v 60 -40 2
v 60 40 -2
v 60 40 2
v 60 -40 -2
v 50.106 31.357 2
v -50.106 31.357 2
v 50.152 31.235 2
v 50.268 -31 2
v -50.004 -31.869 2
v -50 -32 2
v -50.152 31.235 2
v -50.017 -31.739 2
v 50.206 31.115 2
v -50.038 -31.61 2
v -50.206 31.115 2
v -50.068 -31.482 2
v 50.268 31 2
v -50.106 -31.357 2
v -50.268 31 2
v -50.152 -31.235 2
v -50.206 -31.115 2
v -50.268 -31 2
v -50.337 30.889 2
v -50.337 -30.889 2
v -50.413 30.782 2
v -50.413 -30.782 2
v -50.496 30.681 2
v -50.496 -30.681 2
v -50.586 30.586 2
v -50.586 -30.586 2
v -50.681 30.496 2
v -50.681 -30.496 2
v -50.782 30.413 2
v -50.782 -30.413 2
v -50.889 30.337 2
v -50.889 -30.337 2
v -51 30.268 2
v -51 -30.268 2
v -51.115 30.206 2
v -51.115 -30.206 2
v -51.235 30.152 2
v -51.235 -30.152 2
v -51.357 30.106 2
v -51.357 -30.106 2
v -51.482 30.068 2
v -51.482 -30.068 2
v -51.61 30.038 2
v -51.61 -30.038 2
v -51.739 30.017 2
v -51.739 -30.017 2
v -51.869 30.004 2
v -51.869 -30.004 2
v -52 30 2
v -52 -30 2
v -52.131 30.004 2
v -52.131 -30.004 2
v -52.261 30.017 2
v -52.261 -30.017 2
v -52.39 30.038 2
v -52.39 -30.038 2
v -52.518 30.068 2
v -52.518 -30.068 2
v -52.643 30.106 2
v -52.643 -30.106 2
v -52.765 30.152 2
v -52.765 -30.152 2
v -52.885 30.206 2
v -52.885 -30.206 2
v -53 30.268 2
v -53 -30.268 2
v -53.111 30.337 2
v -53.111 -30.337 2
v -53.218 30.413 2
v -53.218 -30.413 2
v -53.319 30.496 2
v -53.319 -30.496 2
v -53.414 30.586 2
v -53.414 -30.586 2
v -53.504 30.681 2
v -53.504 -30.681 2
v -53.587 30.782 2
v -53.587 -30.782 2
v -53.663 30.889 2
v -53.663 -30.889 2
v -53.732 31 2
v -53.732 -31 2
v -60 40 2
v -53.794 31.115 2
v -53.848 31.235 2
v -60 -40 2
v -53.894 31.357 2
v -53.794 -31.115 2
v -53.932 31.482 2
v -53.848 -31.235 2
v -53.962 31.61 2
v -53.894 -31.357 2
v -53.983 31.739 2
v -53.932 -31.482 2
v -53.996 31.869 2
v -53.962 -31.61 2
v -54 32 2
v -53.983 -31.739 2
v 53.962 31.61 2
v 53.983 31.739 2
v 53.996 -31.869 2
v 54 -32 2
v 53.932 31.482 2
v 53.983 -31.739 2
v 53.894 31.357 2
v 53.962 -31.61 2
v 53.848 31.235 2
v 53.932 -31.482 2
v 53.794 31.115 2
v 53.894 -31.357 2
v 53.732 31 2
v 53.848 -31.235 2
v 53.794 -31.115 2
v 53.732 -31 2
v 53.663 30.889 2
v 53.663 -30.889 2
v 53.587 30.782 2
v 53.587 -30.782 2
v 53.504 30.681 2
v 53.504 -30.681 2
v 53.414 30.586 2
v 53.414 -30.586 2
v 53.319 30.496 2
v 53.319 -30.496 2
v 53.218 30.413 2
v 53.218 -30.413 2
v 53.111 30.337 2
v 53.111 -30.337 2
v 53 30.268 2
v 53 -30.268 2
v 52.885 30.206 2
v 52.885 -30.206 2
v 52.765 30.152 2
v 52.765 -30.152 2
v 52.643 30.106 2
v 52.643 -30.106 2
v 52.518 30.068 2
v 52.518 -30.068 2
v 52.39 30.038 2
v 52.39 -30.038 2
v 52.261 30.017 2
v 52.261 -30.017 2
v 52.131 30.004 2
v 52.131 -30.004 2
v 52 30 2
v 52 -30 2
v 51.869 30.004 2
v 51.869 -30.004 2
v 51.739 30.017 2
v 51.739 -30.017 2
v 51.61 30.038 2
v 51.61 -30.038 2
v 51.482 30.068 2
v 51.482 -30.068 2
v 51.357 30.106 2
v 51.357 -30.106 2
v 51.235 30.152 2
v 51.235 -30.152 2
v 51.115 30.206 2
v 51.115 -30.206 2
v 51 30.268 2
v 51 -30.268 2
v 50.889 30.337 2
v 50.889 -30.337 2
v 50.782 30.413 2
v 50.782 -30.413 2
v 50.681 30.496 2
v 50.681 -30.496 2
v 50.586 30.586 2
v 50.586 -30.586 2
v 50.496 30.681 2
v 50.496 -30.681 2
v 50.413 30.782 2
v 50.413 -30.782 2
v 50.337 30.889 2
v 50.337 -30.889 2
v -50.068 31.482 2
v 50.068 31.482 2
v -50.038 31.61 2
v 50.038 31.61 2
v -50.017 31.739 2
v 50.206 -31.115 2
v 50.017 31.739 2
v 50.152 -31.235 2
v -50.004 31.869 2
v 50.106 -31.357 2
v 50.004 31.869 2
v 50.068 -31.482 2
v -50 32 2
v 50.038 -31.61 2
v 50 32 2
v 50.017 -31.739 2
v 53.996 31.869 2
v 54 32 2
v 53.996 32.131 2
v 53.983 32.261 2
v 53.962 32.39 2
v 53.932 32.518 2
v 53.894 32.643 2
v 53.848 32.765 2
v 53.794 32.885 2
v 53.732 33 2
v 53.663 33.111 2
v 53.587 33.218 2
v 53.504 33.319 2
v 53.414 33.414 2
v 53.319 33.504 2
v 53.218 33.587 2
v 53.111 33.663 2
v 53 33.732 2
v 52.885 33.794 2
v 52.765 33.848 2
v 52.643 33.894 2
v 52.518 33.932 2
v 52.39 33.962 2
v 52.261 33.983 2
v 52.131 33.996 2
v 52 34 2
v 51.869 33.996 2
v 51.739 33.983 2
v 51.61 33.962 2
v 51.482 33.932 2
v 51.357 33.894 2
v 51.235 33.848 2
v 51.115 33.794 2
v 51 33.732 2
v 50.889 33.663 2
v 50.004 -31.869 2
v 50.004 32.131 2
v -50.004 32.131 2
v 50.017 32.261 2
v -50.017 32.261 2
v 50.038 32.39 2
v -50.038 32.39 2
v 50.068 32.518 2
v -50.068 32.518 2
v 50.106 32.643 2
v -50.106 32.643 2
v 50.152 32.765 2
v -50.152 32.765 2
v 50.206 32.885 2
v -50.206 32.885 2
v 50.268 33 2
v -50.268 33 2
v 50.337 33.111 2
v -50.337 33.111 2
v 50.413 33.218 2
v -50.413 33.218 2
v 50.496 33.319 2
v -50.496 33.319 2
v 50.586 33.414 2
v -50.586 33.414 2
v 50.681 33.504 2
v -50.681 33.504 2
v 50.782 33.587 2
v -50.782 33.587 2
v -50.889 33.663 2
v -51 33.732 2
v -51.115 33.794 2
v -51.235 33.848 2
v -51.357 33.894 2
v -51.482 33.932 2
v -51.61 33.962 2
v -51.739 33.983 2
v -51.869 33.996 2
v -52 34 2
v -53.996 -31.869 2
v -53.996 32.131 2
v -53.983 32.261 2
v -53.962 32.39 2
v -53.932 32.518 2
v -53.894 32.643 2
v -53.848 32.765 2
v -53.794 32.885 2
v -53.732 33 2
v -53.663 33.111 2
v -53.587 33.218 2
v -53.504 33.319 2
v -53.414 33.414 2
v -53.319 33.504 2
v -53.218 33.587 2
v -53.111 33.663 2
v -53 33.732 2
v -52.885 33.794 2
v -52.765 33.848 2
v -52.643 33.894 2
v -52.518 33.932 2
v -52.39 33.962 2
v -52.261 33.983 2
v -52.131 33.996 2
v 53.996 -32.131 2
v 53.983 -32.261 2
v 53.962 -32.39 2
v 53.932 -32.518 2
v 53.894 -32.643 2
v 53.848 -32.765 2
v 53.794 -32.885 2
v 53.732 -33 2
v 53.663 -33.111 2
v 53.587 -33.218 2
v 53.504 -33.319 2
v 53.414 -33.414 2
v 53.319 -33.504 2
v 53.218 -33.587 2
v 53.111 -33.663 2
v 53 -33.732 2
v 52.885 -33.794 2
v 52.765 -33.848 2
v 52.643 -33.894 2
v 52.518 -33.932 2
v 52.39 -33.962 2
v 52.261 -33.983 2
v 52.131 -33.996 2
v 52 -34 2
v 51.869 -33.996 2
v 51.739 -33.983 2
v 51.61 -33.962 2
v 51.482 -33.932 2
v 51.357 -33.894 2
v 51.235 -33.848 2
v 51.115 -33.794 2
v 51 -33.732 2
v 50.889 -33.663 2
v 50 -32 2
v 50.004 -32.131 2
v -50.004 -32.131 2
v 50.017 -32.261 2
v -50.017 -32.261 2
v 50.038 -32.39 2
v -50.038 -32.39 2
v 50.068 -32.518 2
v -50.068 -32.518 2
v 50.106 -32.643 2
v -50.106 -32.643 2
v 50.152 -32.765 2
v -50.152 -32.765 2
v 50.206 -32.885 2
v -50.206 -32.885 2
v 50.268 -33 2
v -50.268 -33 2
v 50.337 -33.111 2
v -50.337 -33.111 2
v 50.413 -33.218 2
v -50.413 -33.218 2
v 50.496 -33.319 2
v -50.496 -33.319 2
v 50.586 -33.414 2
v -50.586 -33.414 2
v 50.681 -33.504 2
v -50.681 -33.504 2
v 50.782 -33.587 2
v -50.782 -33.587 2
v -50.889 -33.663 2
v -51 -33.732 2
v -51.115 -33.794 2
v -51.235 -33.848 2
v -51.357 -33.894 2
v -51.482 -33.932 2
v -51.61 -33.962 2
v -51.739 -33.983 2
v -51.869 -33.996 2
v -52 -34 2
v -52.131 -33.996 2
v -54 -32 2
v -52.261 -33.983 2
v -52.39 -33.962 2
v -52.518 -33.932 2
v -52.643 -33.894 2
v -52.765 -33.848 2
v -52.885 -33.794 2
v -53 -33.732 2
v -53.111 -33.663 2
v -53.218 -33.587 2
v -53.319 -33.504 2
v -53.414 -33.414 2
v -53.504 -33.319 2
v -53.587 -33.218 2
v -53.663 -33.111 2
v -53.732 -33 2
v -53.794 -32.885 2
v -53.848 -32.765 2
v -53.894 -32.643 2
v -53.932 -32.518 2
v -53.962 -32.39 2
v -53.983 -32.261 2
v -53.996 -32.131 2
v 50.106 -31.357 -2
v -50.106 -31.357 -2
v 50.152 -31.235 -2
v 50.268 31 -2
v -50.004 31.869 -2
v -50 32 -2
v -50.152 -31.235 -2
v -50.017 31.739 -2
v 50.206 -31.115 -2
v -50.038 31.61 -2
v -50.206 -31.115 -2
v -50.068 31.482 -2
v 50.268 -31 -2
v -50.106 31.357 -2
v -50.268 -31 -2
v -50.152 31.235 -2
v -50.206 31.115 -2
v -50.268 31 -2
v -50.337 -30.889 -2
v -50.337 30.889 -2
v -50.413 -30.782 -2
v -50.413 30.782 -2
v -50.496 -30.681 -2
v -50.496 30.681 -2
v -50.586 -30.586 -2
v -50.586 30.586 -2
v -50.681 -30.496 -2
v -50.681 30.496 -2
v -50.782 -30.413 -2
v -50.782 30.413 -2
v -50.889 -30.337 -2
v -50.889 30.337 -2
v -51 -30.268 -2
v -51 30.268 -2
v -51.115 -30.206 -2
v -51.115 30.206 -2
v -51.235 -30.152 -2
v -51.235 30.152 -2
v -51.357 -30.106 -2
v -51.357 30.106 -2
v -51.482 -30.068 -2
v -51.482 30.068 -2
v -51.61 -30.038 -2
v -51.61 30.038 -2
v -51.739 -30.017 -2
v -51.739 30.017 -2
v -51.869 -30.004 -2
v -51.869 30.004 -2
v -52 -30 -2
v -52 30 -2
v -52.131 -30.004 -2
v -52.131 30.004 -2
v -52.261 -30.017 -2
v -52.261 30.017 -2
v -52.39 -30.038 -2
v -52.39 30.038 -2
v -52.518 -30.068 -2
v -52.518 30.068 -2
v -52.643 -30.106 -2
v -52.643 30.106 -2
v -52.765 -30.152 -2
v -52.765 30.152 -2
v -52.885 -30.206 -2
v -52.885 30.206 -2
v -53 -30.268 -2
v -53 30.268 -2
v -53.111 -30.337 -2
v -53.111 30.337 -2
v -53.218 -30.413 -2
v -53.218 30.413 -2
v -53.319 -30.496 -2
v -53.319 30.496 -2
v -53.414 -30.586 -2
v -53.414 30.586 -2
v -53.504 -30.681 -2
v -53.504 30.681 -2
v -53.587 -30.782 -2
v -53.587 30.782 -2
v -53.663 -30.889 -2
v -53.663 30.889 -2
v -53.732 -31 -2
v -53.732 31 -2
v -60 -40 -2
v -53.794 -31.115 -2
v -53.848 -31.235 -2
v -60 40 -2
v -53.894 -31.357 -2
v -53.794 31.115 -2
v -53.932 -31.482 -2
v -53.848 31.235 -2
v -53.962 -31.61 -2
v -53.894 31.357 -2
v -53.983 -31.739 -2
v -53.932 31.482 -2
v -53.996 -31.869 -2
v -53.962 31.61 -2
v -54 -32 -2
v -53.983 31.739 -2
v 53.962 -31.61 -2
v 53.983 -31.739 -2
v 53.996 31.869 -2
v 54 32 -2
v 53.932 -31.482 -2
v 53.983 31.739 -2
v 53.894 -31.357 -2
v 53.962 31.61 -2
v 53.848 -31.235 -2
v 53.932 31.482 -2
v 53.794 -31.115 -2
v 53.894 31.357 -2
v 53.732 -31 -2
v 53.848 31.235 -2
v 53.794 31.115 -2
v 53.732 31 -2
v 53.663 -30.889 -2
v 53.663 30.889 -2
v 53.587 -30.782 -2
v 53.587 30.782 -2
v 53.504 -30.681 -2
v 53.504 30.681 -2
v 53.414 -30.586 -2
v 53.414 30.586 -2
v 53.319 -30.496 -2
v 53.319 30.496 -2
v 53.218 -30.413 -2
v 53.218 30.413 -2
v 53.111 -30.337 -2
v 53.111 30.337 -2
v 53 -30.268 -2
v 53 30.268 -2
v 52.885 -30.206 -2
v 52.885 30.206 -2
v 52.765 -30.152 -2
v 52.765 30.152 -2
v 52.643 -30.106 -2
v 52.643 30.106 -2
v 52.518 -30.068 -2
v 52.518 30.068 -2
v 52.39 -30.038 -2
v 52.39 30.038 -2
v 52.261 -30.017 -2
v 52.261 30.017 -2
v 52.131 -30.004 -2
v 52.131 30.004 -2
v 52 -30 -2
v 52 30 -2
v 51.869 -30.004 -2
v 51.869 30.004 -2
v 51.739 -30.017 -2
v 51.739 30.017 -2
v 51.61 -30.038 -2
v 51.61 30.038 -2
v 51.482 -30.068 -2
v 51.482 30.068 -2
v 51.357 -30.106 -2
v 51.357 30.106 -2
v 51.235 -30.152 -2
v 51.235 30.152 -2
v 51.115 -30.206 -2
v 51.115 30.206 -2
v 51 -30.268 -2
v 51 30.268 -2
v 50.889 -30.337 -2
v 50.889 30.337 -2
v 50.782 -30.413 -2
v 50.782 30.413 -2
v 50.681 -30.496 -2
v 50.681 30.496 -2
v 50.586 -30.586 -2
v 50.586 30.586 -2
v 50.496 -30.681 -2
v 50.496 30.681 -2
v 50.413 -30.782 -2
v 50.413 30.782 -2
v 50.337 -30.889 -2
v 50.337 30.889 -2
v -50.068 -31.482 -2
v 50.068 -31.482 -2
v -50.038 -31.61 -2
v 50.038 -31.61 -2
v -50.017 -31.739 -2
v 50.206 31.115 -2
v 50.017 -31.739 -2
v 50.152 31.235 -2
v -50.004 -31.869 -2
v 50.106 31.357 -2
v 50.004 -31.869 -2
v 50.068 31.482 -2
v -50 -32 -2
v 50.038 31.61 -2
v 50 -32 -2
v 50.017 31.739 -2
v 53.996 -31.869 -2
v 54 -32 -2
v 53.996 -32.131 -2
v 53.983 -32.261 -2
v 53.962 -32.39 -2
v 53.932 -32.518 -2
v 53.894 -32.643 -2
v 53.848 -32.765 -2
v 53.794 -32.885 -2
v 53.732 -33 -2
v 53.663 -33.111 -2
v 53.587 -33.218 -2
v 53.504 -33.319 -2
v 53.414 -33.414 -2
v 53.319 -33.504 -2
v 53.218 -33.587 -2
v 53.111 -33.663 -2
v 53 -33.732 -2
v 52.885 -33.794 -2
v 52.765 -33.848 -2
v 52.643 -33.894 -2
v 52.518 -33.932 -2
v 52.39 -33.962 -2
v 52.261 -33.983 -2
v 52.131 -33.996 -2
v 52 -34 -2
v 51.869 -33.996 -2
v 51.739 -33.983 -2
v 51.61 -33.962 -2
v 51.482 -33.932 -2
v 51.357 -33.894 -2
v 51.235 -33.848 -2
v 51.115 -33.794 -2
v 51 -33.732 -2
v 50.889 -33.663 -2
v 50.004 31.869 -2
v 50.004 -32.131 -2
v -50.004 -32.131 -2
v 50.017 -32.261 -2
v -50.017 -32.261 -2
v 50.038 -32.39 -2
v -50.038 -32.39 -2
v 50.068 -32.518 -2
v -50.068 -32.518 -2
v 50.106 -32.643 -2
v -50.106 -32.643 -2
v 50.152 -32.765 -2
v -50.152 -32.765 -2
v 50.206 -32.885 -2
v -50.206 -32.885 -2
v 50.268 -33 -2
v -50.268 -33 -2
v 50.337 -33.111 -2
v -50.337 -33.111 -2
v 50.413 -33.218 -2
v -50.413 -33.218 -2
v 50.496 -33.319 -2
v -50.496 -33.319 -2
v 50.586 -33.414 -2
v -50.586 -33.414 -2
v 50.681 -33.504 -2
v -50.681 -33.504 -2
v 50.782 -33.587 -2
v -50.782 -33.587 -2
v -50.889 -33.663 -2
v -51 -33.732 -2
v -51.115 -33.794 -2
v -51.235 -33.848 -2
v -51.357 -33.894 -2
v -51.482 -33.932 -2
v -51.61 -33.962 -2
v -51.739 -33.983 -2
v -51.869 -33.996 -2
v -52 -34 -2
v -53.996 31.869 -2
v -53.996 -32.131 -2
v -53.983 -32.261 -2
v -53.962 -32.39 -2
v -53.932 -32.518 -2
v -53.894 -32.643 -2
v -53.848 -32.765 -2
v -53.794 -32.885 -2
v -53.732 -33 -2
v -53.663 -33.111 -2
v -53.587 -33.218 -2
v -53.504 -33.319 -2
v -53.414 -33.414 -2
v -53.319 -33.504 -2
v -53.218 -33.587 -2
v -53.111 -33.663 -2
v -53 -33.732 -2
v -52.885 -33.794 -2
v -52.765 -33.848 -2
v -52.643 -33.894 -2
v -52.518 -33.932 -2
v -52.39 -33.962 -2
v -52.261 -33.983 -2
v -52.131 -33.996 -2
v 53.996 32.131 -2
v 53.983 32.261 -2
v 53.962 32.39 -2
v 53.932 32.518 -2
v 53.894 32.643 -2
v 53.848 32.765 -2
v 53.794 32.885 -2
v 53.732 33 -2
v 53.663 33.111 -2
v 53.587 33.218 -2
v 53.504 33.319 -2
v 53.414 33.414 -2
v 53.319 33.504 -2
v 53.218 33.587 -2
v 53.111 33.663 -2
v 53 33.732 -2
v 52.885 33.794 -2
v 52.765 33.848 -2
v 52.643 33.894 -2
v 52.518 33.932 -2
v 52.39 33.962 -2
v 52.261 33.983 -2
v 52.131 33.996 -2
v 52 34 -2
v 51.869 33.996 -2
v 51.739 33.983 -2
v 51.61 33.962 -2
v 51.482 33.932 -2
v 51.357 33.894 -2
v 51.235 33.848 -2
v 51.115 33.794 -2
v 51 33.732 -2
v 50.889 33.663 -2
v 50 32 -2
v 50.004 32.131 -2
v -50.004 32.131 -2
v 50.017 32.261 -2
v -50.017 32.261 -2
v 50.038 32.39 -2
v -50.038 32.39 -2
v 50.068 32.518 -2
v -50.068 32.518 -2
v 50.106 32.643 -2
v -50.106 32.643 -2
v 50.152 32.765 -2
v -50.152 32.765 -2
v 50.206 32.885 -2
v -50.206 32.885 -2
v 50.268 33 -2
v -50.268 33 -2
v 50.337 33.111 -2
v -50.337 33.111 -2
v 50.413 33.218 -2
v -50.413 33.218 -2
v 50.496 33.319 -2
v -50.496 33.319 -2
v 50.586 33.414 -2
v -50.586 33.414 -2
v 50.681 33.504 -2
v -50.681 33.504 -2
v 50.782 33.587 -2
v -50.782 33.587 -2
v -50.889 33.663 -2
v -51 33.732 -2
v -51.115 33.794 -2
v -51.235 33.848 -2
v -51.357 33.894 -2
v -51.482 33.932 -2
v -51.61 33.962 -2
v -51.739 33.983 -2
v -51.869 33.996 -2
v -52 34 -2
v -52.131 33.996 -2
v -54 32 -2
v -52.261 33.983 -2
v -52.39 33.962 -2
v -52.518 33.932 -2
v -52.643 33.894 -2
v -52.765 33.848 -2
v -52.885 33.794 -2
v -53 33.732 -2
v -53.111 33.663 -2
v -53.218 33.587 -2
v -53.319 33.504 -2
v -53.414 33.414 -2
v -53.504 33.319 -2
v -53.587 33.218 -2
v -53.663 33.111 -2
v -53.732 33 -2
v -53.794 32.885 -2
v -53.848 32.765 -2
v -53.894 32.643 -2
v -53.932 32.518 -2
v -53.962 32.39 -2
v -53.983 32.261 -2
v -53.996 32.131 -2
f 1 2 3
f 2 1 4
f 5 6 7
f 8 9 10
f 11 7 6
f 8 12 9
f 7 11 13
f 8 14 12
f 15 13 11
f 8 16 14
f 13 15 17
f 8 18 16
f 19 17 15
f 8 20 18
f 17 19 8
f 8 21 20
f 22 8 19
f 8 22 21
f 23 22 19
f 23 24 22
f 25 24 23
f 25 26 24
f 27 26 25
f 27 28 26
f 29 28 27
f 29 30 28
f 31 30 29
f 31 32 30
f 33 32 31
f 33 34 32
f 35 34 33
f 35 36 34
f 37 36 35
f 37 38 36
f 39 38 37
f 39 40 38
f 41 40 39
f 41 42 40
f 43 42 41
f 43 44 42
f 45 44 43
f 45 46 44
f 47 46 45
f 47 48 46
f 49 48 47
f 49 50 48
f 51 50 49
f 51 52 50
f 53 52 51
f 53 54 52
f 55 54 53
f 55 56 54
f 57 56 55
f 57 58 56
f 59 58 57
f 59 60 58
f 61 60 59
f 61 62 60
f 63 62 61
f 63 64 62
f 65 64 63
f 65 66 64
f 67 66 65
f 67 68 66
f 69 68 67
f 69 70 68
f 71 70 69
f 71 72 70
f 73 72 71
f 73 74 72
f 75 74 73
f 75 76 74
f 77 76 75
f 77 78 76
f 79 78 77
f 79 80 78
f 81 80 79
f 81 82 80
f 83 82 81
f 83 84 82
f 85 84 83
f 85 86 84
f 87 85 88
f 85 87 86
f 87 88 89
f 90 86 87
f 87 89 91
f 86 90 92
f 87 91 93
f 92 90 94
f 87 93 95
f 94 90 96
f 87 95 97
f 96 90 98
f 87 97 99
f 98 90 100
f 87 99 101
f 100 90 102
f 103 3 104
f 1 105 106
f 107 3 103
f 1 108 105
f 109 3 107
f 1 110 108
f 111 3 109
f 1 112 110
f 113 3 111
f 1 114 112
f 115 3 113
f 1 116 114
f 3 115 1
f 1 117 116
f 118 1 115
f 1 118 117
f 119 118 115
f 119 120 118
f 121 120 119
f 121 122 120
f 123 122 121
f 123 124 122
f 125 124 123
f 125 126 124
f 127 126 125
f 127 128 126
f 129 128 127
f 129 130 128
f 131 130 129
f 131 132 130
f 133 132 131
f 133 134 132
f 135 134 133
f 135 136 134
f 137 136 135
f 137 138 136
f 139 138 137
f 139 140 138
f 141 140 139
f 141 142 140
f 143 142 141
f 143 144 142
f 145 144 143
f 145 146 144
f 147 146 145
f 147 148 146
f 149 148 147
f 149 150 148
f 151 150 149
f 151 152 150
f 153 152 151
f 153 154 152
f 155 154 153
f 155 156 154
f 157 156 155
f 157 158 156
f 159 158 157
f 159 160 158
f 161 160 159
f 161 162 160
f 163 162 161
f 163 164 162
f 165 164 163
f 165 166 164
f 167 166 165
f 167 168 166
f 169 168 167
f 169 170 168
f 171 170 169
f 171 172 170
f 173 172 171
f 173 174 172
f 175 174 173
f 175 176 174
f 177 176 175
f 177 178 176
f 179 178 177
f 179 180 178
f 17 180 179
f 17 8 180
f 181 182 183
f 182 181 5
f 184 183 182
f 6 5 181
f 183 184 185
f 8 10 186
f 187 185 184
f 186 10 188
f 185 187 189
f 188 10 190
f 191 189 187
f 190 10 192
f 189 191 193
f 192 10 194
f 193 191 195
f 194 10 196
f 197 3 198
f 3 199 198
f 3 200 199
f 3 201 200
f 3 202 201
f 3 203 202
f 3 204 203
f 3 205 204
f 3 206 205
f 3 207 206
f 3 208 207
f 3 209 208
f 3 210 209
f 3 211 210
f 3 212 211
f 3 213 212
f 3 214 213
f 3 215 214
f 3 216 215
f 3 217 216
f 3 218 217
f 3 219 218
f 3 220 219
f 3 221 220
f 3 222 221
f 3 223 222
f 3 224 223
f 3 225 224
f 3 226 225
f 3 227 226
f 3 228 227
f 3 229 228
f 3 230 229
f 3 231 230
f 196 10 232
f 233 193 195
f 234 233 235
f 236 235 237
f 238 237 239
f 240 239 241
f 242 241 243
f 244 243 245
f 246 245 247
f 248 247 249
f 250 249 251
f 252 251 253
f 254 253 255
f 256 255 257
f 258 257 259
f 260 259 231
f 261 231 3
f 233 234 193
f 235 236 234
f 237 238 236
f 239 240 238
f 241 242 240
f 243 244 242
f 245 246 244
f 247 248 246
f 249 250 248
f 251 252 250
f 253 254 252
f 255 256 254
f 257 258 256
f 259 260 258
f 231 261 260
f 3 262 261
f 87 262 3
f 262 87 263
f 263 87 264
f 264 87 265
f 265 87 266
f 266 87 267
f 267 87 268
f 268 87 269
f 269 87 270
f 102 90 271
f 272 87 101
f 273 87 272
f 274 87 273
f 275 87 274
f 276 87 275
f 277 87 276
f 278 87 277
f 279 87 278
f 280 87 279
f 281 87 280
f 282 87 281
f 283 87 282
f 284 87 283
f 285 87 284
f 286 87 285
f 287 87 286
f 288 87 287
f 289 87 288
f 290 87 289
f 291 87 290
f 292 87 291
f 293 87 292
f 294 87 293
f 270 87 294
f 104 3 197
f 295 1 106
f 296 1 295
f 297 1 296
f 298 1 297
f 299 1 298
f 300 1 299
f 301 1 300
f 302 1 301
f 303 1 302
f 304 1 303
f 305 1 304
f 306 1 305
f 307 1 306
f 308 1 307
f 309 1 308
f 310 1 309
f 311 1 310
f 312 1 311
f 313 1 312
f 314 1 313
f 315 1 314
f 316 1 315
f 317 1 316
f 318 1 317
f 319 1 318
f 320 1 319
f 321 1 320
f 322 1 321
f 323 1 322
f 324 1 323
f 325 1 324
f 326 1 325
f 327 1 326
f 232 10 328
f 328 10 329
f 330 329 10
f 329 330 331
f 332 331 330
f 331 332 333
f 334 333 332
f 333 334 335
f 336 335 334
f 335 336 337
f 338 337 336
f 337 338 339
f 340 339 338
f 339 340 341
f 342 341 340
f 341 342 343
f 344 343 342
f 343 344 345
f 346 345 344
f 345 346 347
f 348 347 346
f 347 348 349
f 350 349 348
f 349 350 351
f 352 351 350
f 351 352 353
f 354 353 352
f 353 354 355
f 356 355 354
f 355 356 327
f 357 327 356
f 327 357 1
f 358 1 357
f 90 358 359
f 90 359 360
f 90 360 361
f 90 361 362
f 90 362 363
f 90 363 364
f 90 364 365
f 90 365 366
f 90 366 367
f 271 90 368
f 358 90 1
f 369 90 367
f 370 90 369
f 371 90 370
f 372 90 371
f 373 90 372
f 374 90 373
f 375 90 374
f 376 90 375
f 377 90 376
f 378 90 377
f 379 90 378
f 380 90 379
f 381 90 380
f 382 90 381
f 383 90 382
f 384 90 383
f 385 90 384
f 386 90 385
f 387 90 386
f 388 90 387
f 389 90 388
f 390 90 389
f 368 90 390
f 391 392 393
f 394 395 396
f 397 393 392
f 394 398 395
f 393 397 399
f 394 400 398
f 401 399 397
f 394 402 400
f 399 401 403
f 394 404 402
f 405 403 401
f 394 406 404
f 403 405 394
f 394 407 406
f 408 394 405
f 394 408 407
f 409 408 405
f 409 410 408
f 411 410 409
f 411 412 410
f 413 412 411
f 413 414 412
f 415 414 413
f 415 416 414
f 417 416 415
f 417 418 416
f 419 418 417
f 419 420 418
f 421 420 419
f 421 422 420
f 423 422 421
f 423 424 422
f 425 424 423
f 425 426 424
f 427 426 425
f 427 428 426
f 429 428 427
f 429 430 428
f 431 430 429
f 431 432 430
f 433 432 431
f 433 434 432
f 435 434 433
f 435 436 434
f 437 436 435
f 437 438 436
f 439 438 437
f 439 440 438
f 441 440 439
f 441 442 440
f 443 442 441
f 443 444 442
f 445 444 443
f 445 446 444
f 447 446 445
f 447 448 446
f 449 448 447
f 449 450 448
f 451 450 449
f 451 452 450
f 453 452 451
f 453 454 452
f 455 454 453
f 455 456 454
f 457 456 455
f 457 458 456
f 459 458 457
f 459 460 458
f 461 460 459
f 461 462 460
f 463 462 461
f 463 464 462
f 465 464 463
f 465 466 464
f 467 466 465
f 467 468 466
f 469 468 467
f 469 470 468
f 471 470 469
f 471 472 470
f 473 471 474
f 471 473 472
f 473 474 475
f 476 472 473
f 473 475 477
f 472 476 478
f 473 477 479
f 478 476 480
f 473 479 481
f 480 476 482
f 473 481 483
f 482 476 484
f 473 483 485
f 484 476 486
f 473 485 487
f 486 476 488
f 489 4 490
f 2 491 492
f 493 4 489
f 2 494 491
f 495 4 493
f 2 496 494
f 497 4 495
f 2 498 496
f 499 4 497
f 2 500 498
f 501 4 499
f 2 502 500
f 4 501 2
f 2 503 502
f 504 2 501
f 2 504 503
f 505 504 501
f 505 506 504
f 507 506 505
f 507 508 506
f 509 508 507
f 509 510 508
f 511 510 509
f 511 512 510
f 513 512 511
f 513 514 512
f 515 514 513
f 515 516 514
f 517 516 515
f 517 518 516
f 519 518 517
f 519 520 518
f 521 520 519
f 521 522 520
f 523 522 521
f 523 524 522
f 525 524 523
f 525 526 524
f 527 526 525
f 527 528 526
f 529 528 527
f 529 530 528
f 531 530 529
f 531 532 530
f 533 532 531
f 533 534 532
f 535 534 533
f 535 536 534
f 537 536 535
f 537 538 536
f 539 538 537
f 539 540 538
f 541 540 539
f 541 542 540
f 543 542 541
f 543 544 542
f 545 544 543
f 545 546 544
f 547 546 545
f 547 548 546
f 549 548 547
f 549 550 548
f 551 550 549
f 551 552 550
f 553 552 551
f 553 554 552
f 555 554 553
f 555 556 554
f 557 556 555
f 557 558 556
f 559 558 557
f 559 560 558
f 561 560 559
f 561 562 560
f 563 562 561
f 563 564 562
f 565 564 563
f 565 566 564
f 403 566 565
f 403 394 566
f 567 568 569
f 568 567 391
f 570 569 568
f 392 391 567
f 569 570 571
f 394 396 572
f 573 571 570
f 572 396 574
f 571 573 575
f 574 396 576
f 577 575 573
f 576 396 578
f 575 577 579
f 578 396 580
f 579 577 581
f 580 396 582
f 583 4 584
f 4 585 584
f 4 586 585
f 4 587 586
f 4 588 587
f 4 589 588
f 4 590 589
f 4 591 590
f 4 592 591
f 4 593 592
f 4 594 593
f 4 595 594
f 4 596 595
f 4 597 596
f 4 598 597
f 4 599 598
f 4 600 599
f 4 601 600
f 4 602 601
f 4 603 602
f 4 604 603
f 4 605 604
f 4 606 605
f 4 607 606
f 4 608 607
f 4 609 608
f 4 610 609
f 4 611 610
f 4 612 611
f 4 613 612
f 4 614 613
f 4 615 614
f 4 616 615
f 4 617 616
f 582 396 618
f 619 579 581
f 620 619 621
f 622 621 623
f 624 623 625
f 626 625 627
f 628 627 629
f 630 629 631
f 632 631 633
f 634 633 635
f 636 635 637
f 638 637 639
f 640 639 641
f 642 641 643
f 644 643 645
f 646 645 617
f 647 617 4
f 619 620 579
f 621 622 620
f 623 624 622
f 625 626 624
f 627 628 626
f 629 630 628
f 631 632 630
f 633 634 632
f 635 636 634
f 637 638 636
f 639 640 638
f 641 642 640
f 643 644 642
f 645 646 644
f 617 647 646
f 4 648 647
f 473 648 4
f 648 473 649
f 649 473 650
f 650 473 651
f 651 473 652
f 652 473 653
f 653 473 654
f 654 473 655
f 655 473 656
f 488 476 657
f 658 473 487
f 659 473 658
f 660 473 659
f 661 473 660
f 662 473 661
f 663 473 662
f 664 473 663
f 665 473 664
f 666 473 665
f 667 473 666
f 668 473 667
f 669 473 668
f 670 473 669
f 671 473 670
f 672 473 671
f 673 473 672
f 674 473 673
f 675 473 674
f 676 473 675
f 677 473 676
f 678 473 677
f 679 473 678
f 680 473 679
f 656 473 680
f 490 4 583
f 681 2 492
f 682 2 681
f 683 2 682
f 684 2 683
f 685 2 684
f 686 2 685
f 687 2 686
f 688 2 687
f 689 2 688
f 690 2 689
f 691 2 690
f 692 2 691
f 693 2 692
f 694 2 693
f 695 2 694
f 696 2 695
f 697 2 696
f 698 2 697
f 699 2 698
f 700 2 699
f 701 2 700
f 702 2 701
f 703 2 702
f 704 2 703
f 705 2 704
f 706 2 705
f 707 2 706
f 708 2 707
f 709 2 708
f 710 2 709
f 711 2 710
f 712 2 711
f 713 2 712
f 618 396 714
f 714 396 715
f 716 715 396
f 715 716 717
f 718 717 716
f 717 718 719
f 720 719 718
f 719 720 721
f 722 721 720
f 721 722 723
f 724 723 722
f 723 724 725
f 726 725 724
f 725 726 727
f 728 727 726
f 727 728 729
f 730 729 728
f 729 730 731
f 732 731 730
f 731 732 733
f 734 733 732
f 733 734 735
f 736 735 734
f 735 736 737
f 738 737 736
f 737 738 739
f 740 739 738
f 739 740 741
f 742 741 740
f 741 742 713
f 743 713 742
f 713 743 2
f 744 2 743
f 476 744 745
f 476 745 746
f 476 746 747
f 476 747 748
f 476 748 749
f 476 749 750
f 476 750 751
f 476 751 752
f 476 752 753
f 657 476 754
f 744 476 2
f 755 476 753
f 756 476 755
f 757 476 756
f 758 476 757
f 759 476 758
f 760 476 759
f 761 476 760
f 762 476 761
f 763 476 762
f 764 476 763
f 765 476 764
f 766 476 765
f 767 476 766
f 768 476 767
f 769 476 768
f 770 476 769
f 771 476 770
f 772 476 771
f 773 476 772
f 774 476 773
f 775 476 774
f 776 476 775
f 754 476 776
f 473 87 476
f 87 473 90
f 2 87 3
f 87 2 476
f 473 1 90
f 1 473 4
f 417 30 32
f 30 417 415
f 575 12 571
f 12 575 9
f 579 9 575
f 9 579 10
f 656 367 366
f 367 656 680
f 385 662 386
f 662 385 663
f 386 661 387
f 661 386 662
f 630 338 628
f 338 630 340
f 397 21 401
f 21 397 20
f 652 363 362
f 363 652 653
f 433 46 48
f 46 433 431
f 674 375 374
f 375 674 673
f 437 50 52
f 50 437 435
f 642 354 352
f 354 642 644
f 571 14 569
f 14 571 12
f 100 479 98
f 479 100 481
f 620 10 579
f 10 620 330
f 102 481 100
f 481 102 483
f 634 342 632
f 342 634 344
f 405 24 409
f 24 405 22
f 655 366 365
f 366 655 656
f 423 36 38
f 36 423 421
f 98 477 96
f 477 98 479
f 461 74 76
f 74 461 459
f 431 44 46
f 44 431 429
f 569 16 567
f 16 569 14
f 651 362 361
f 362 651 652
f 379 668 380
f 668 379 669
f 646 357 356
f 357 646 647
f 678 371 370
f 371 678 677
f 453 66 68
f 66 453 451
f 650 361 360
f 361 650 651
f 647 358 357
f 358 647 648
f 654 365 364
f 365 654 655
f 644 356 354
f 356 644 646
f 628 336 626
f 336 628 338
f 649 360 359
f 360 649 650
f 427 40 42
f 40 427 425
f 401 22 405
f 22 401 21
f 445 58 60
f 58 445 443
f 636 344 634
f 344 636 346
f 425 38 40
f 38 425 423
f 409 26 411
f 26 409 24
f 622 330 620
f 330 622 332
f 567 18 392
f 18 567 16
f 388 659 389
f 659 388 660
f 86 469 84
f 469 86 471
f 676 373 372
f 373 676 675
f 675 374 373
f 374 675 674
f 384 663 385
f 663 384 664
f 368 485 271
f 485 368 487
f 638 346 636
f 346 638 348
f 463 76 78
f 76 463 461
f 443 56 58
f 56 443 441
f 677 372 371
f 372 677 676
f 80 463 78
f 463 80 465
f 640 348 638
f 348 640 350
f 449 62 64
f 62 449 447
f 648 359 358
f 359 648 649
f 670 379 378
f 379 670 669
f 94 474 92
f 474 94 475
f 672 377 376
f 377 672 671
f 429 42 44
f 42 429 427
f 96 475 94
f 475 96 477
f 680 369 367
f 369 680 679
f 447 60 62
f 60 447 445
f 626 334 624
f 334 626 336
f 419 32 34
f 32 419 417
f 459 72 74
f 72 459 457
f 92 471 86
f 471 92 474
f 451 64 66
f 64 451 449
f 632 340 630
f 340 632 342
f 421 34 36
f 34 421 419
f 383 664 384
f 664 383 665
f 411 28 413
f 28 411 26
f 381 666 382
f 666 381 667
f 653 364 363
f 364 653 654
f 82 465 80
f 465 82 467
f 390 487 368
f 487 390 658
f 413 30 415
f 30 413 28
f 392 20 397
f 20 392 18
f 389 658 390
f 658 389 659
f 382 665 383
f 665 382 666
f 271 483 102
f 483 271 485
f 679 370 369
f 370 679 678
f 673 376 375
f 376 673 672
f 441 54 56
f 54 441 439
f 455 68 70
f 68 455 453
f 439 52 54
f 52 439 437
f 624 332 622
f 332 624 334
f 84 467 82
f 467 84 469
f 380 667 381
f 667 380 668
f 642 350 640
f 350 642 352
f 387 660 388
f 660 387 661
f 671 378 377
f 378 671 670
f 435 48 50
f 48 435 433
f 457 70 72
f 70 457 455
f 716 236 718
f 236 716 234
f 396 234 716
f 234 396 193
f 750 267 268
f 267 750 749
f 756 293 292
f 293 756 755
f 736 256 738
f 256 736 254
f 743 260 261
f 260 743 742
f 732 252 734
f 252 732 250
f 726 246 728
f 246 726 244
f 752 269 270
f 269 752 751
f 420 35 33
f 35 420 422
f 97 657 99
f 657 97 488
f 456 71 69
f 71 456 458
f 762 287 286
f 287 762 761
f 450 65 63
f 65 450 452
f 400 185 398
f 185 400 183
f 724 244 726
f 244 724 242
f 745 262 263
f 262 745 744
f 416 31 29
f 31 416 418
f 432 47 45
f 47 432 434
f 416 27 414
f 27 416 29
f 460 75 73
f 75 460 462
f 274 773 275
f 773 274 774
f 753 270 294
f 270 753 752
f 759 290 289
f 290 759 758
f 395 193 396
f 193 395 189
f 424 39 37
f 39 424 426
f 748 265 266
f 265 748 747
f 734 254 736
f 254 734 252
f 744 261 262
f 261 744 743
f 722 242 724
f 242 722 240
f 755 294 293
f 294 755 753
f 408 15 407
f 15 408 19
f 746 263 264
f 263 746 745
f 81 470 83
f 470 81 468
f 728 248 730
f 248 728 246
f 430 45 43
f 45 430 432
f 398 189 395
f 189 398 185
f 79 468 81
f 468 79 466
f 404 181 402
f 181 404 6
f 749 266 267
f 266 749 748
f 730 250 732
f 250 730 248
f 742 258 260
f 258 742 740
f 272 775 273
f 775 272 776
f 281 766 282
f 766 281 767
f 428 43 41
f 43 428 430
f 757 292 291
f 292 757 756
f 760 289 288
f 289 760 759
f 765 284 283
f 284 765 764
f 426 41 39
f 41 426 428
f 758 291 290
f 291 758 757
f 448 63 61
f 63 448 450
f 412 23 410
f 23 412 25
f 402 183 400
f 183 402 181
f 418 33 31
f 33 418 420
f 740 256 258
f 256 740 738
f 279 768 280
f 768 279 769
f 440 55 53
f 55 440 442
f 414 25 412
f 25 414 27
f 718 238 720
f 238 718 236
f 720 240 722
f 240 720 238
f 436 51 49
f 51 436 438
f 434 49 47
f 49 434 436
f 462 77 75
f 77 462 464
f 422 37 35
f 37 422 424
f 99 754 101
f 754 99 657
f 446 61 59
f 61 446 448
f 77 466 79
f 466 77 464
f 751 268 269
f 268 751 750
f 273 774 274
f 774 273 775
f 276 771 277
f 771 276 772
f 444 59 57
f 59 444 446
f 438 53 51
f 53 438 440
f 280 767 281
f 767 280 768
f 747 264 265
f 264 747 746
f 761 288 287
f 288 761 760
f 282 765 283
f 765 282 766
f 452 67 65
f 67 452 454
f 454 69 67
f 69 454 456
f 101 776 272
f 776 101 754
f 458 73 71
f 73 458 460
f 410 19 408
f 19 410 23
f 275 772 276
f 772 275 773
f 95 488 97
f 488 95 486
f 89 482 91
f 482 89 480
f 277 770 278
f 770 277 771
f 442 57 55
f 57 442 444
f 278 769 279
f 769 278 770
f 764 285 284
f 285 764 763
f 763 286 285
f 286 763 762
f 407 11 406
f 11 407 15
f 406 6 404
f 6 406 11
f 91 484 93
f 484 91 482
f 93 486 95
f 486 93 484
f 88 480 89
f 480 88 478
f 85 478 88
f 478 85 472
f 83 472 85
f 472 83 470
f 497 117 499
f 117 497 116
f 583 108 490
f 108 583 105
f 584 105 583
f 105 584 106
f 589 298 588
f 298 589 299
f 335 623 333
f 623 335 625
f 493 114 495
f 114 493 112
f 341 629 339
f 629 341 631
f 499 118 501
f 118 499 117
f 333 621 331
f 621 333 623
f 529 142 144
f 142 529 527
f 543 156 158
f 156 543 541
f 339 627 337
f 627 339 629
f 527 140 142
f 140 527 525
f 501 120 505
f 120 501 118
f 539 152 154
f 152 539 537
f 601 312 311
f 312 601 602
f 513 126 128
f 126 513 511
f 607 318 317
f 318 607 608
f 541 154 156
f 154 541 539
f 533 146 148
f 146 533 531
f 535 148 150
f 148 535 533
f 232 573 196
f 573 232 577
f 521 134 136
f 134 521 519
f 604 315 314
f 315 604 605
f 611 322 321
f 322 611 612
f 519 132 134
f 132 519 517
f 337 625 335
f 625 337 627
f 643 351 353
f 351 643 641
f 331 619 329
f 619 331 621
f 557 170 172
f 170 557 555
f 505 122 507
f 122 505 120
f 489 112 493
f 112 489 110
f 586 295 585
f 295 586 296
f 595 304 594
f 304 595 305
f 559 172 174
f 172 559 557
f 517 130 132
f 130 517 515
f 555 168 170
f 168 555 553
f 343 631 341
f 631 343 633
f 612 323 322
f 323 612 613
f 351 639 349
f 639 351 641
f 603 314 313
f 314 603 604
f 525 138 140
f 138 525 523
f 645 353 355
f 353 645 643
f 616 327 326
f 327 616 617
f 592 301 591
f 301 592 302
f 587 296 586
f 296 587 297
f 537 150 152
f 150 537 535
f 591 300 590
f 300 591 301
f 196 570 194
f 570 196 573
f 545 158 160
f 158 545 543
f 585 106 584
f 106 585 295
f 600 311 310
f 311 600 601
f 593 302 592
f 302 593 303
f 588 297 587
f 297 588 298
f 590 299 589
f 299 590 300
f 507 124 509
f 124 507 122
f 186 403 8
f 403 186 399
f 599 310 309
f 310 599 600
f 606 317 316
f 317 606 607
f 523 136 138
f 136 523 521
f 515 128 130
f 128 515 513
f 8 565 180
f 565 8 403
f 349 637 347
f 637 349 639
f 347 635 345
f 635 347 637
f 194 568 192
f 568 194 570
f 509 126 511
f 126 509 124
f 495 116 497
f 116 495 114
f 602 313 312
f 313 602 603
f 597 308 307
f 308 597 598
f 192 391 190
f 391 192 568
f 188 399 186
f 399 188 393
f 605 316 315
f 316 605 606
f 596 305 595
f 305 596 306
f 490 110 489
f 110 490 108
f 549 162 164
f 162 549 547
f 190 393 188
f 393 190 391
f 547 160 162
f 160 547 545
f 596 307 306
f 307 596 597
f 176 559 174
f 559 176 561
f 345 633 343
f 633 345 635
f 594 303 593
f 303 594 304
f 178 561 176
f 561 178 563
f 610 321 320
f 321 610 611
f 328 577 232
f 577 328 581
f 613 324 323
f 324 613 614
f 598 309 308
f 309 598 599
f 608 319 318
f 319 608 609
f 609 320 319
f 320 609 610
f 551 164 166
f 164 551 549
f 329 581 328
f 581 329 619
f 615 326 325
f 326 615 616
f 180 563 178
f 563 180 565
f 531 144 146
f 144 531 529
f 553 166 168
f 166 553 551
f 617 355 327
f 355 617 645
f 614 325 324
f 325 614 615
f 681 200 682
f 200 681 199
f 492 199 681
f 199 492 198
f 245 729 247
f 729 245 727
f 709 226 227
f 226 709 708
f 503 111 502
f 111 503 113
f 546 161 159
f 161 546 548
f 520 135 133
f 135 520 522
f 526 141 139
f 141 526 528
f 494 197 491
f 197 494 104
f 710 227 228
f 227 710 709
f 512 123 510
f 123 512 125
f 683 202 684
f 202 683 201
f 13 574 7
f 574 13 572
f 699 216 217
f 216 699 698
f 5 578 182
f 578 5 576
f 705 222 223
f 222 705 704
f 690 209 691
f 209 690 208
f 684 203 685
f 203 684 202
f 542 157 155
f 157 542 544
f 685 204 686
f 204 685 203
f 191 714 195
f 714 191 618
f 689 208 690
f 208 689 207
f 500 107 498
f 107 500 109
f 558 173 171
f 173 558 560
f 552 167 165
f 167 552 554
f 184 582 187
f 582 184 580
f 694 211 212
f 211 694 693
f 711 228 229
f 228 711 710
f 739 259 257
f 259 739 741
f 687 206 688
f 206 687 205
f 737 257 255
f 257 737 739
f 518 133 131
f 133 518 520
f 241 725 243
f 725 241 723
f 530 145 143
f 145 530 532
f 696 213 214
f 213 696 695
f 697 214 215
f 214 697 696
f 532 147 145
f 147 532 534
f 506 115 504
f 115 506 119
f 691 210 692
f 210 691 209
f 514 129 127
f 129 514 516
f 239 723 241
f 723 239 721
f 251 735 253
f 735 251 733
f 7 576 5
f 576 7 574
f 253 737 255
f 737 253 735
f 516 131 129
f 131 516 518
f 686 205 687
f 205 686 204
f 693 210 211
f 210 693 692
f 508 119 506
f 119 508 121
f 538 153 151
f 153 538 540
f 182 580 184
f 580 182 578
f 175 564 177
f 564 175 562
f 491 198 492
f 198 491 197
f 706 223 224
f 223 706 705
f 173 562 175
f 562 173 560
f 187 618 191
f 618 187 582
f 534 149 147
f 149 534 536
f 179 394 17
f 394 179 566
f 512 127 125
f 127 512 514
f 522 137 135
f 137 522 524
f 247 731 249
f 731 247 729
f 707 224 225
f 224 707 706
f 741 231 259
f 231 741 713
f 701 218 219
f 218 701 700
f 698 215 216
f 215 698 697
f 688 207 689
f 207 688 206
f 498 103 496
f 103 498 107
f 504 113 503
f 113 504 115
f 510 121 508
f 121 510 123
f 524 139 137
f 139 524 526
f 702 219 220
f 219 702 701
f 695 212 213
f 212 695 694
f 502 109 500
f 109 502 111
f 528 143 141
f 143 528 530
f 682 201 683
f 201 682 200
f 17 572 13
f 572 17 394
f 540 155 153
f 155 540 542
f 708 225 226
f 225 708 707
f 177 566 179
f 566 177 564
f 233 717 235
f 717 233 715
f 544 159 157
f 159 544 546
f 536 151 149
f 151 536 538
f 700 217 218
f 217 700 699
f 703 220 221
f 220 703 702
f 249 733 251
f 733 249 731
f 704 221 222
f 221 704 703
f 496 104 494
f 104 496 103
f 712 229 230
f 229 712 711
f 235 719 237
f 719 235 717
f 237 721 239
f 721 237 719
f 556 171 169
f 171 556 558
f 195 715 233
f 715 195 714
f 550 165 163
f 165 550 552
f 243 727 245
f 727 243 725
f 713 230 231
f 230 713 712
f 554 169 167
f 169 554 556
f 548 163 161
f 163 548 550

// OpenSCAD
// ========================================
// a 120 x 80 x 4 mm plate with four 4 mm holes
// NeuroCAD canonical IR; dimensions are millimetres
// ========================================
$fn = 96;

difference() {
  cube(size=[120, 80, 4], center=true);
  translate([-52, -32, 0]) {
    cylinder(r=2, h=6, center=true);
  }
  translate([-52, 32, 0]) {
    cylinder(r=2, h=6, center=true);
  }
  translate([52, -32, 0]) {
    cylinder(r=2, h=6, center=true);
  }
  translate([52, 32, 0]) {
    cylinder(r=2, h=6, center=true);
  }
}
